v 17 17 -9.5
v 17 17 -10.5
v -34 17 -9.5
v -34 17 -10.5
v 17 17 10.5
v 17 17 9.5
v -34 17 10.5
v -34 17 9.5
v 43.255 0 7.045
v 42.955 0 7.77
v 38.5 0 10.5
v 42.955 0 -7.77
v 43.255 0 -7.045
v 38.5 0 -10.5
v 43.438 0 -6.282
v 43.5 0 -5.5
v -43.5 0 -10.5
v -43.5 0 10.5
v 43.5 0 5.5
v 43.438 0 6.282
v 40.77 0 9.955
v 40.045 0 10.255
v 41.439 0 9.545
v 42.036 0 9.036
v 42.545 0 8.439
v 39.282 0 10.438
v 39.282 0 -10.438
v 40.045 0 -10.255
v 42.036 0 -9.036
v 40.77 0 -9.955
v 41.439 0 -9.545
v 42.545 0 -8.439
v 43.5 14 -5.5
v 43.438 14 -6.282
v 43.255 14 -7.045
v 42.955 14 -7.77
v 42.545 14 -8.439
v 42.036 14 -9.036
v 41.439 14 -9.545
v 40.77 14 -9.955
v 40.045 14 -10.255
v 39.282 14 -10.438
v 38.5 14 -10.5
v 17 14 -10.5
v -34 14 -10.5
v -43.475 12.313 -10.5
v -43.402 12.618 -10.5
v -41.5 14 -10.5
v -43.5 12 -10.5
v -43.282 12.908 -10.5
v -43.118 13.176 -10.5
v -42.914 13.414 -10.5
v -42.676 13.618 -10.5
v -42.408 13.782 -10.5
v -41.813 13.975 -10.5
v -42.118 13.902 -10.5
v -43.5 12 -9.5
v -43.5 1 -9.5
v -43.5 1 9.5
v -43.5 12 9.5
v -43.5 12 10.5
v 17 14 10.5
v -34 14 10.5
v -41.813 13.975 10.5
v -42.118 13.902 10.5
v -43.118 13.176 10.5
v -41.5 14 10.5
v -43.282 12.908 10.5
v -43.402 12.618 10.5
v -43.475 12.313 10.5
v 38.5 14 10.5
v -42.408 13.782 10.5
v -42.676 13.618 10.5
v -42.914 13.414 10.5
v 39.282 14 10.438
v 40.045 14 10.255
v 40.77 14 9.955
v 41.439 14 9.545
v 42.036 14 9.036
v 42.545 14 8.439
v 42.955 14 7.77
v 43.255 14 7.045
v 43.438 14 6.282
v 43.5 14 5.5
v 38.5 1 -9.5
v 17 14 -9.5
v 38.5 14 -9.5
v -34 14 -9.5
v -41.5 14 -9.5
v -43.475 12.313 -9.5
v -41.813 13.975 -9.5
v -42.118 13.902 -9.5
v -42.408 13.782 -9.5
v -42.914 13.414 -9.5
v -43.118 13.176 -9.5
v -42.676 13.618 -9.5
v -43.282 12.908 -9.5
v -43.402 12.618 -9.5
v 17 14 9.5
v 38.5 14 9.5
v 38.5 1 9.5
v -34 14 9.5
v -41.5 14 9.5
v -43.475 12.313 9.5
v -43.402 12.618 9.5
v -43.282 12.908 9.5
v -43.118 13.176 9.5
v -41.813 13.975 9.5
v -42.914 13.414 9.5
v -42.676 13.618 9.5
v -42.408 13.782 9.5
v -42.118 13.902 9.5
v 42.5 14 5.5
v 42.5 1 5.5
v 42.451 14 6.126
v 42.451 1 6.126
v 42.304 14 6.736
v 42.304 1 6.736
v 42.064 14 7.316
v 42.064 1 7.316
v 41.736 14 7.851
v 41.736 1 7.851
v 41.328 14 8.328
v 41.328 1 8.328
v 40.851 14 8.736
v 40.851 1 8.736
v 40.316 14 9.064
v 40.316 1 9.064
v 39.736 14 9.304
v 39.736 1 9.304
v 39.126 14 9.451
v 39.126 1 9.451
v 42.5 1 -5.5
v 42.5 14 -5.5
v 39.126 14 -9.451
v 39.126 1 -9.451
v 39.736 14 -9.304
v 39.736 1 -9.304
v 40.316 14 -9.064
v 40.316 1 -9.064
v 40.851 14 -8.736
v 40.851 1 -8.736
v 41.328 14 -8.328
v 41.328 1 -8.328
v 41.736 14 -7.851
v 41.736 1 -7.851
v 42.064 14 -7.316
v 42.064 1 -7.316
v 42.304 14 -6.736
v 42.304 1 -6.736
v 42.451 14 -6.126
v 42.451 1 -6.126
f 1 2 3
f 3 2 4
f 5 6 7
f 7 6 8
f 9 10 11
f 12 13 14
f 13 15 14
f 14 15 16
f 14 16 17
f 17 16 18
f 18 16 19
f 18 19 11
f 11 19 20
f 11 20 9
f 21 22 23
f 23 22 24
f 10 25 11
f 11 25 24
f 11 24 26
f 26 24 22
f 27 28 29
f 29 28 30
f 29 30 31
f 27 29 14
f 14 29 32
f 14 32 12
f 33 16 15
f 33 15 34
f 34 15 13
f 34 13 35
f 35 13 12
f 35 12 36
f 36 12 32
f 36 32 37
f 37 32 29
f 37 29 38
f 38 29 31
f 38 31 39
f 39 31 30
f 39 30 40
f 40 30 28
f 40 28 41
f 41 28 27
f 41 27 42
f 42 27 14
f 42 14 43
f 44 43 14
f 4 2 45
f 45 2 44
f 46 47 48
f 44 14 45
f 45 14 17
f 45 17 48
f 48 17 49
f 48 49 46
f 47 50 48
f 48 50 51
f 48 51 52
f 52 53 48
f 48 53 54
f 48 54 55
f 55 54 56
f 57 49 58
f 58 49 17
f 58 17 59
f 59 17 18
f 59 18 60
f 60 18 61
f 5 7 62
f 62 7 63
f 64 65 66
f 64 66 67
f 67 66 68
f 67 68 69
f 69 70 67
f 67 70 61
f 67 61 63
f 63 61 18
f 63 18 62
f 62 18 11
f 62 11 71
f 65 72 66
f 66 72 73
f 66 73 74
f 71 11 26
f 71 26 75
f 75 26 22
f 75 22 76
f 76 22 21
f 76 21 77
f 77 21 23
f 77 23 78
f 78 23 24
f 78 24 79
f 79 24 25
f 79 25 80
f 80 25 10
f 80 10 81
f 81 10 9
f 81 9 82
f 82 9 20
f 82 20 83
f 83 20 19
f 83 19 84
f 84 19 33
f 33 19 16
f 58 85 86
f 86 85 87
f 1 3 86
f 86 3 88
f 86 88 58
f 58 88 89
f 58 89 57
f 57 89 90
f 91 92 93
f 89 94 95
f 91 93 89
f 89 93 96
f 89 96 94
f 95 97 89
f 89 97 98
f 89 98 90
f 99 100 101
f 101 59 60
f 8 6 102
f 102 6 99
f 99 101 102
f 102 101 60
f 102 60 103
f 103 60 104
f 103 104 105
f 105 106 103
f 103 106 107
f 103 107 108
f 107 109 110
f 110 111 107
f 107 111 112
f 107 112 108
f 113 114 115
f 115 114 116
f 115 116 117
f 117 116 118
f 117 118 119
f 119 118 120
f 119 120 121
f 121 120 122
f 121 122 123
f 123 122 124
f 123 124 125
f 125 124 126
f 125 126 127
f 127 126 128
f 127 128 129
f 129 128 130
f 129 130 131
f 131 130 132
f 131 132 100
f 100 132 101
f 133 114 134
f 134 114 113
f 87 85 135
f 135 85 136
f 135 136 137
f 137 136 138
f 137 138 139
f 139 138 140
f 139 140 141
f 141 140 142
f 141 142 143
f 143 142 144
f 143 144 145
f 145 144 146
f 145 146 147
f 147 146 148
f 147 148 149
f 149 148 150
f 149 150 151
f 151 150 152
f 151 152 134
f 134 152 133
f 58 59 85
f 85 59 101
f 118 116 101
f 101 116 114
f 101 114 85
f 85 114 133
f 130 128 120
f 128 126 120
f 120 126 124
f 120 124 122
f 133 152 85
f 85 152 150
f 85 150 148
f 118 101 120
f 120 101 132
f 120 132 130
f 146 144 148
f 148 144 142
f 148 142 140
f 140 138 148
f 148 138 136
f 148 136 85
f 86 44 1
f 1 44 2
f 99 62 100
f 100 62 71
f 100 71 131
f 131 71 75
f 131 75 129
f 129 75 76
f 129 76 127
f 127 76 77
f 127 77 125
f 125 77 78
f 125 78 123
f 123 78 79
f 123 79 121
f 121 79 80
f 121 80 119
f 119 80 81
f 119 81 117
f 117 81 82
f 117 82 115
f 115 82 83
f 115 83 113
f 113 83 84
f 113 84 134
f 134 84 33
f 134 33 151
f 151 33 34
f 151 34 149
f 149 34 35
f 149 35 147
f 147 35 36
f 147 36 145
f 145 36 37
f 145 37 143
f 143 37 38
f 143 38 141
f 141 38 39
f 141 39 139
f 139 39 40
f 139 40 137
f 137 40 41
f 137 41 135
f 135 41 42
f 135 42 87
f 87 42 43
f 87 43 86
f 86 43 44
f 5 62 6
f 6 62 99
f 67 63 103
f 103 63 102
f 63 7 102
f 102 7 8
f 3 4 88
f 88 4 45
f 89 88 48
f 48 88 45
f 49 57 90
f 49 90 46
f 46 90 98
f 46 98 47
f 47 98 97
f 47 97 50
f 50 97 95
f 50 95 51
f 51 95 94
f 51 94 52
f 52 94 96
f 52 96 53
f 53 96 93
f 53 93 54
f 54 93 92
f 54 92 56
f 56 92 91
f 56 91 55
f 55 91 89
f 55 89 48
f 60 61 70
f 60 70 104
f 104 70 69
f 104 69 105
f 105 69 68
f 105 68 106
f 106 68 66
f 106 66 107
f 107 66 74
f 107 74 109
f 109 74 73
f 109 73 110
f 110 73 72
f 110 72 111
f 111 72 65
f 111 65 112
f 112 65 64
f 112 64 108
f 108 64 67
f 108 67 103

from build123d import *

# Parameters (mm, degrees)
EXTRUDE_1_DEPTH     = 17
EXTRUDE_2_DEPTH     = 1
SKETCH_3_W          = 13.083033948
SKETCH_3_H          = 19
CUT_EXTRUDE_1_DEPTH = 16
SKETCH_4_W          = 26.5
SKETCH_4_H          = 3
CUT_EXTRUDE_2_DEPTH = 26
SKETCH_5_W          = 9.5
SKETCH_5_H          = 3
CUT_EXTRUDE_3_DEPTH = 26
FILLET_1_R          = 2


with BuildPart() as part:
    # Эскиз1 → Бобышка-Вытянуть1 (new body)
    with BuildSketch(Plane(origin=(0, 0, 0), x_dir=(1, 0, 0), z_dir=(0, 1, 0))):
        with BuildLine():
            Line((38.5, 10.5), (-43.5, 10.5))
            Line((-43.5, 10.5), (-43.5, -10.5))
            Line((-43.5, -10.5), (38.5, -10.5))
            ThreePointArc((38.5, -10.5), (42.035533906, -9.035533906), (43.5, -5.5))
            Line((43.5, -5.5), (43.5, 5.5))
            ThreePointArc((43.5, 5.5), (42.035533906, 9.035533906), (38.5, 10.5))
        make_face()
        with BuildLine():
            Line((-42.5, 9.5), (-42.5, -9.5))
            Line((-42.5, -9.5), (38.5, -9.5))
            ThreePointArc((38.5, -9.5), (41.328427125, -8.328427125), (42.5, -5.5))
            Line((42.5, -5.5), (42.5, 5.5))
            ThreePointArc((42.5, 5.5), (41.328427125, 8.328427125), (38.5, 9.5))
            Line((38.5, 9.5), (-42.5, 9.5))
        make_face(mode=Mode.SUBTRACT)
    extrude(amount=EXTRUDE_1_DEPTH)

    # Эскиз2 → Бобышка-Вытянуть2 (add)
    with BuildSketch(Plane.XZ):
        with BuildLine():
            Line((-43.5, 10.5), (-43.5, -10.5))
            Line((-43.5, -10.5), (38.5, -10.5))
            ThreePointArc((38.5, -10.5), (42.035533906, -9.035533906), (43.5, -5.5))
            Line((43.5, -5.5), (43.5, 5.5))
            ThreePointArc((43.5, 5.5), (42.035533906, 9.035533906), (38.5, 10.5))
            Line((38.5, 10.5), (-43.5, 10.5))
        make_face()
    extrude(amount=-EXTRUDE_2_DEPTH)

    # Эскиз3 → Вырез-Вытянуть1 (cut)
    with BuildSketch(Plane(origin=(0, 17, 0), x_dir=(1, 0, 0), z_dir=(0, 1, 0))):
        with Locations((-45.110446102, 0)):
            Rectangle(SKETCH_3_W, SKETCH_3_H)
    extrude(amount=-CUT_EXTRUDE_1_DEPTH, mode=Mode.SUBTRACT)

    # Эскиз4 → Вырез-Вытянуть2 (cut)
    with BuildSketch(Plane.XY.offset(10.5)):
        with Locations((30.25, 15.5)):
            Rectangle(SKETCH_4_W, SKETCH_4_H)
    extrude(amount=-CUT_EXTRUDE_2_DEPTH, mode=Mode.SUBTRACT)

    # Эскиз5 → Вырез-Вытянуть3 (cut)
    with BuildSketch(Plane.XY.offset(10.5)):
        with Locations((-38.75, 15.5)):
            Rectangle(SKETCH_5_W, SKETCH_5_H)
    extrude(amount=-CUT_EXTRUDE_3_DEPTH, mode=Mode.SUBTRACT)

    # Скругление1
    fillet_1_edges = [part.edges().sort_by_distance(p)[0] for p in [
        (-43.5, 14, -10),
        (-43.5, 14, 10),
    ]]
    fillet(fillet_1_edges, radius=FILLET_1_R)


solid = part.part
